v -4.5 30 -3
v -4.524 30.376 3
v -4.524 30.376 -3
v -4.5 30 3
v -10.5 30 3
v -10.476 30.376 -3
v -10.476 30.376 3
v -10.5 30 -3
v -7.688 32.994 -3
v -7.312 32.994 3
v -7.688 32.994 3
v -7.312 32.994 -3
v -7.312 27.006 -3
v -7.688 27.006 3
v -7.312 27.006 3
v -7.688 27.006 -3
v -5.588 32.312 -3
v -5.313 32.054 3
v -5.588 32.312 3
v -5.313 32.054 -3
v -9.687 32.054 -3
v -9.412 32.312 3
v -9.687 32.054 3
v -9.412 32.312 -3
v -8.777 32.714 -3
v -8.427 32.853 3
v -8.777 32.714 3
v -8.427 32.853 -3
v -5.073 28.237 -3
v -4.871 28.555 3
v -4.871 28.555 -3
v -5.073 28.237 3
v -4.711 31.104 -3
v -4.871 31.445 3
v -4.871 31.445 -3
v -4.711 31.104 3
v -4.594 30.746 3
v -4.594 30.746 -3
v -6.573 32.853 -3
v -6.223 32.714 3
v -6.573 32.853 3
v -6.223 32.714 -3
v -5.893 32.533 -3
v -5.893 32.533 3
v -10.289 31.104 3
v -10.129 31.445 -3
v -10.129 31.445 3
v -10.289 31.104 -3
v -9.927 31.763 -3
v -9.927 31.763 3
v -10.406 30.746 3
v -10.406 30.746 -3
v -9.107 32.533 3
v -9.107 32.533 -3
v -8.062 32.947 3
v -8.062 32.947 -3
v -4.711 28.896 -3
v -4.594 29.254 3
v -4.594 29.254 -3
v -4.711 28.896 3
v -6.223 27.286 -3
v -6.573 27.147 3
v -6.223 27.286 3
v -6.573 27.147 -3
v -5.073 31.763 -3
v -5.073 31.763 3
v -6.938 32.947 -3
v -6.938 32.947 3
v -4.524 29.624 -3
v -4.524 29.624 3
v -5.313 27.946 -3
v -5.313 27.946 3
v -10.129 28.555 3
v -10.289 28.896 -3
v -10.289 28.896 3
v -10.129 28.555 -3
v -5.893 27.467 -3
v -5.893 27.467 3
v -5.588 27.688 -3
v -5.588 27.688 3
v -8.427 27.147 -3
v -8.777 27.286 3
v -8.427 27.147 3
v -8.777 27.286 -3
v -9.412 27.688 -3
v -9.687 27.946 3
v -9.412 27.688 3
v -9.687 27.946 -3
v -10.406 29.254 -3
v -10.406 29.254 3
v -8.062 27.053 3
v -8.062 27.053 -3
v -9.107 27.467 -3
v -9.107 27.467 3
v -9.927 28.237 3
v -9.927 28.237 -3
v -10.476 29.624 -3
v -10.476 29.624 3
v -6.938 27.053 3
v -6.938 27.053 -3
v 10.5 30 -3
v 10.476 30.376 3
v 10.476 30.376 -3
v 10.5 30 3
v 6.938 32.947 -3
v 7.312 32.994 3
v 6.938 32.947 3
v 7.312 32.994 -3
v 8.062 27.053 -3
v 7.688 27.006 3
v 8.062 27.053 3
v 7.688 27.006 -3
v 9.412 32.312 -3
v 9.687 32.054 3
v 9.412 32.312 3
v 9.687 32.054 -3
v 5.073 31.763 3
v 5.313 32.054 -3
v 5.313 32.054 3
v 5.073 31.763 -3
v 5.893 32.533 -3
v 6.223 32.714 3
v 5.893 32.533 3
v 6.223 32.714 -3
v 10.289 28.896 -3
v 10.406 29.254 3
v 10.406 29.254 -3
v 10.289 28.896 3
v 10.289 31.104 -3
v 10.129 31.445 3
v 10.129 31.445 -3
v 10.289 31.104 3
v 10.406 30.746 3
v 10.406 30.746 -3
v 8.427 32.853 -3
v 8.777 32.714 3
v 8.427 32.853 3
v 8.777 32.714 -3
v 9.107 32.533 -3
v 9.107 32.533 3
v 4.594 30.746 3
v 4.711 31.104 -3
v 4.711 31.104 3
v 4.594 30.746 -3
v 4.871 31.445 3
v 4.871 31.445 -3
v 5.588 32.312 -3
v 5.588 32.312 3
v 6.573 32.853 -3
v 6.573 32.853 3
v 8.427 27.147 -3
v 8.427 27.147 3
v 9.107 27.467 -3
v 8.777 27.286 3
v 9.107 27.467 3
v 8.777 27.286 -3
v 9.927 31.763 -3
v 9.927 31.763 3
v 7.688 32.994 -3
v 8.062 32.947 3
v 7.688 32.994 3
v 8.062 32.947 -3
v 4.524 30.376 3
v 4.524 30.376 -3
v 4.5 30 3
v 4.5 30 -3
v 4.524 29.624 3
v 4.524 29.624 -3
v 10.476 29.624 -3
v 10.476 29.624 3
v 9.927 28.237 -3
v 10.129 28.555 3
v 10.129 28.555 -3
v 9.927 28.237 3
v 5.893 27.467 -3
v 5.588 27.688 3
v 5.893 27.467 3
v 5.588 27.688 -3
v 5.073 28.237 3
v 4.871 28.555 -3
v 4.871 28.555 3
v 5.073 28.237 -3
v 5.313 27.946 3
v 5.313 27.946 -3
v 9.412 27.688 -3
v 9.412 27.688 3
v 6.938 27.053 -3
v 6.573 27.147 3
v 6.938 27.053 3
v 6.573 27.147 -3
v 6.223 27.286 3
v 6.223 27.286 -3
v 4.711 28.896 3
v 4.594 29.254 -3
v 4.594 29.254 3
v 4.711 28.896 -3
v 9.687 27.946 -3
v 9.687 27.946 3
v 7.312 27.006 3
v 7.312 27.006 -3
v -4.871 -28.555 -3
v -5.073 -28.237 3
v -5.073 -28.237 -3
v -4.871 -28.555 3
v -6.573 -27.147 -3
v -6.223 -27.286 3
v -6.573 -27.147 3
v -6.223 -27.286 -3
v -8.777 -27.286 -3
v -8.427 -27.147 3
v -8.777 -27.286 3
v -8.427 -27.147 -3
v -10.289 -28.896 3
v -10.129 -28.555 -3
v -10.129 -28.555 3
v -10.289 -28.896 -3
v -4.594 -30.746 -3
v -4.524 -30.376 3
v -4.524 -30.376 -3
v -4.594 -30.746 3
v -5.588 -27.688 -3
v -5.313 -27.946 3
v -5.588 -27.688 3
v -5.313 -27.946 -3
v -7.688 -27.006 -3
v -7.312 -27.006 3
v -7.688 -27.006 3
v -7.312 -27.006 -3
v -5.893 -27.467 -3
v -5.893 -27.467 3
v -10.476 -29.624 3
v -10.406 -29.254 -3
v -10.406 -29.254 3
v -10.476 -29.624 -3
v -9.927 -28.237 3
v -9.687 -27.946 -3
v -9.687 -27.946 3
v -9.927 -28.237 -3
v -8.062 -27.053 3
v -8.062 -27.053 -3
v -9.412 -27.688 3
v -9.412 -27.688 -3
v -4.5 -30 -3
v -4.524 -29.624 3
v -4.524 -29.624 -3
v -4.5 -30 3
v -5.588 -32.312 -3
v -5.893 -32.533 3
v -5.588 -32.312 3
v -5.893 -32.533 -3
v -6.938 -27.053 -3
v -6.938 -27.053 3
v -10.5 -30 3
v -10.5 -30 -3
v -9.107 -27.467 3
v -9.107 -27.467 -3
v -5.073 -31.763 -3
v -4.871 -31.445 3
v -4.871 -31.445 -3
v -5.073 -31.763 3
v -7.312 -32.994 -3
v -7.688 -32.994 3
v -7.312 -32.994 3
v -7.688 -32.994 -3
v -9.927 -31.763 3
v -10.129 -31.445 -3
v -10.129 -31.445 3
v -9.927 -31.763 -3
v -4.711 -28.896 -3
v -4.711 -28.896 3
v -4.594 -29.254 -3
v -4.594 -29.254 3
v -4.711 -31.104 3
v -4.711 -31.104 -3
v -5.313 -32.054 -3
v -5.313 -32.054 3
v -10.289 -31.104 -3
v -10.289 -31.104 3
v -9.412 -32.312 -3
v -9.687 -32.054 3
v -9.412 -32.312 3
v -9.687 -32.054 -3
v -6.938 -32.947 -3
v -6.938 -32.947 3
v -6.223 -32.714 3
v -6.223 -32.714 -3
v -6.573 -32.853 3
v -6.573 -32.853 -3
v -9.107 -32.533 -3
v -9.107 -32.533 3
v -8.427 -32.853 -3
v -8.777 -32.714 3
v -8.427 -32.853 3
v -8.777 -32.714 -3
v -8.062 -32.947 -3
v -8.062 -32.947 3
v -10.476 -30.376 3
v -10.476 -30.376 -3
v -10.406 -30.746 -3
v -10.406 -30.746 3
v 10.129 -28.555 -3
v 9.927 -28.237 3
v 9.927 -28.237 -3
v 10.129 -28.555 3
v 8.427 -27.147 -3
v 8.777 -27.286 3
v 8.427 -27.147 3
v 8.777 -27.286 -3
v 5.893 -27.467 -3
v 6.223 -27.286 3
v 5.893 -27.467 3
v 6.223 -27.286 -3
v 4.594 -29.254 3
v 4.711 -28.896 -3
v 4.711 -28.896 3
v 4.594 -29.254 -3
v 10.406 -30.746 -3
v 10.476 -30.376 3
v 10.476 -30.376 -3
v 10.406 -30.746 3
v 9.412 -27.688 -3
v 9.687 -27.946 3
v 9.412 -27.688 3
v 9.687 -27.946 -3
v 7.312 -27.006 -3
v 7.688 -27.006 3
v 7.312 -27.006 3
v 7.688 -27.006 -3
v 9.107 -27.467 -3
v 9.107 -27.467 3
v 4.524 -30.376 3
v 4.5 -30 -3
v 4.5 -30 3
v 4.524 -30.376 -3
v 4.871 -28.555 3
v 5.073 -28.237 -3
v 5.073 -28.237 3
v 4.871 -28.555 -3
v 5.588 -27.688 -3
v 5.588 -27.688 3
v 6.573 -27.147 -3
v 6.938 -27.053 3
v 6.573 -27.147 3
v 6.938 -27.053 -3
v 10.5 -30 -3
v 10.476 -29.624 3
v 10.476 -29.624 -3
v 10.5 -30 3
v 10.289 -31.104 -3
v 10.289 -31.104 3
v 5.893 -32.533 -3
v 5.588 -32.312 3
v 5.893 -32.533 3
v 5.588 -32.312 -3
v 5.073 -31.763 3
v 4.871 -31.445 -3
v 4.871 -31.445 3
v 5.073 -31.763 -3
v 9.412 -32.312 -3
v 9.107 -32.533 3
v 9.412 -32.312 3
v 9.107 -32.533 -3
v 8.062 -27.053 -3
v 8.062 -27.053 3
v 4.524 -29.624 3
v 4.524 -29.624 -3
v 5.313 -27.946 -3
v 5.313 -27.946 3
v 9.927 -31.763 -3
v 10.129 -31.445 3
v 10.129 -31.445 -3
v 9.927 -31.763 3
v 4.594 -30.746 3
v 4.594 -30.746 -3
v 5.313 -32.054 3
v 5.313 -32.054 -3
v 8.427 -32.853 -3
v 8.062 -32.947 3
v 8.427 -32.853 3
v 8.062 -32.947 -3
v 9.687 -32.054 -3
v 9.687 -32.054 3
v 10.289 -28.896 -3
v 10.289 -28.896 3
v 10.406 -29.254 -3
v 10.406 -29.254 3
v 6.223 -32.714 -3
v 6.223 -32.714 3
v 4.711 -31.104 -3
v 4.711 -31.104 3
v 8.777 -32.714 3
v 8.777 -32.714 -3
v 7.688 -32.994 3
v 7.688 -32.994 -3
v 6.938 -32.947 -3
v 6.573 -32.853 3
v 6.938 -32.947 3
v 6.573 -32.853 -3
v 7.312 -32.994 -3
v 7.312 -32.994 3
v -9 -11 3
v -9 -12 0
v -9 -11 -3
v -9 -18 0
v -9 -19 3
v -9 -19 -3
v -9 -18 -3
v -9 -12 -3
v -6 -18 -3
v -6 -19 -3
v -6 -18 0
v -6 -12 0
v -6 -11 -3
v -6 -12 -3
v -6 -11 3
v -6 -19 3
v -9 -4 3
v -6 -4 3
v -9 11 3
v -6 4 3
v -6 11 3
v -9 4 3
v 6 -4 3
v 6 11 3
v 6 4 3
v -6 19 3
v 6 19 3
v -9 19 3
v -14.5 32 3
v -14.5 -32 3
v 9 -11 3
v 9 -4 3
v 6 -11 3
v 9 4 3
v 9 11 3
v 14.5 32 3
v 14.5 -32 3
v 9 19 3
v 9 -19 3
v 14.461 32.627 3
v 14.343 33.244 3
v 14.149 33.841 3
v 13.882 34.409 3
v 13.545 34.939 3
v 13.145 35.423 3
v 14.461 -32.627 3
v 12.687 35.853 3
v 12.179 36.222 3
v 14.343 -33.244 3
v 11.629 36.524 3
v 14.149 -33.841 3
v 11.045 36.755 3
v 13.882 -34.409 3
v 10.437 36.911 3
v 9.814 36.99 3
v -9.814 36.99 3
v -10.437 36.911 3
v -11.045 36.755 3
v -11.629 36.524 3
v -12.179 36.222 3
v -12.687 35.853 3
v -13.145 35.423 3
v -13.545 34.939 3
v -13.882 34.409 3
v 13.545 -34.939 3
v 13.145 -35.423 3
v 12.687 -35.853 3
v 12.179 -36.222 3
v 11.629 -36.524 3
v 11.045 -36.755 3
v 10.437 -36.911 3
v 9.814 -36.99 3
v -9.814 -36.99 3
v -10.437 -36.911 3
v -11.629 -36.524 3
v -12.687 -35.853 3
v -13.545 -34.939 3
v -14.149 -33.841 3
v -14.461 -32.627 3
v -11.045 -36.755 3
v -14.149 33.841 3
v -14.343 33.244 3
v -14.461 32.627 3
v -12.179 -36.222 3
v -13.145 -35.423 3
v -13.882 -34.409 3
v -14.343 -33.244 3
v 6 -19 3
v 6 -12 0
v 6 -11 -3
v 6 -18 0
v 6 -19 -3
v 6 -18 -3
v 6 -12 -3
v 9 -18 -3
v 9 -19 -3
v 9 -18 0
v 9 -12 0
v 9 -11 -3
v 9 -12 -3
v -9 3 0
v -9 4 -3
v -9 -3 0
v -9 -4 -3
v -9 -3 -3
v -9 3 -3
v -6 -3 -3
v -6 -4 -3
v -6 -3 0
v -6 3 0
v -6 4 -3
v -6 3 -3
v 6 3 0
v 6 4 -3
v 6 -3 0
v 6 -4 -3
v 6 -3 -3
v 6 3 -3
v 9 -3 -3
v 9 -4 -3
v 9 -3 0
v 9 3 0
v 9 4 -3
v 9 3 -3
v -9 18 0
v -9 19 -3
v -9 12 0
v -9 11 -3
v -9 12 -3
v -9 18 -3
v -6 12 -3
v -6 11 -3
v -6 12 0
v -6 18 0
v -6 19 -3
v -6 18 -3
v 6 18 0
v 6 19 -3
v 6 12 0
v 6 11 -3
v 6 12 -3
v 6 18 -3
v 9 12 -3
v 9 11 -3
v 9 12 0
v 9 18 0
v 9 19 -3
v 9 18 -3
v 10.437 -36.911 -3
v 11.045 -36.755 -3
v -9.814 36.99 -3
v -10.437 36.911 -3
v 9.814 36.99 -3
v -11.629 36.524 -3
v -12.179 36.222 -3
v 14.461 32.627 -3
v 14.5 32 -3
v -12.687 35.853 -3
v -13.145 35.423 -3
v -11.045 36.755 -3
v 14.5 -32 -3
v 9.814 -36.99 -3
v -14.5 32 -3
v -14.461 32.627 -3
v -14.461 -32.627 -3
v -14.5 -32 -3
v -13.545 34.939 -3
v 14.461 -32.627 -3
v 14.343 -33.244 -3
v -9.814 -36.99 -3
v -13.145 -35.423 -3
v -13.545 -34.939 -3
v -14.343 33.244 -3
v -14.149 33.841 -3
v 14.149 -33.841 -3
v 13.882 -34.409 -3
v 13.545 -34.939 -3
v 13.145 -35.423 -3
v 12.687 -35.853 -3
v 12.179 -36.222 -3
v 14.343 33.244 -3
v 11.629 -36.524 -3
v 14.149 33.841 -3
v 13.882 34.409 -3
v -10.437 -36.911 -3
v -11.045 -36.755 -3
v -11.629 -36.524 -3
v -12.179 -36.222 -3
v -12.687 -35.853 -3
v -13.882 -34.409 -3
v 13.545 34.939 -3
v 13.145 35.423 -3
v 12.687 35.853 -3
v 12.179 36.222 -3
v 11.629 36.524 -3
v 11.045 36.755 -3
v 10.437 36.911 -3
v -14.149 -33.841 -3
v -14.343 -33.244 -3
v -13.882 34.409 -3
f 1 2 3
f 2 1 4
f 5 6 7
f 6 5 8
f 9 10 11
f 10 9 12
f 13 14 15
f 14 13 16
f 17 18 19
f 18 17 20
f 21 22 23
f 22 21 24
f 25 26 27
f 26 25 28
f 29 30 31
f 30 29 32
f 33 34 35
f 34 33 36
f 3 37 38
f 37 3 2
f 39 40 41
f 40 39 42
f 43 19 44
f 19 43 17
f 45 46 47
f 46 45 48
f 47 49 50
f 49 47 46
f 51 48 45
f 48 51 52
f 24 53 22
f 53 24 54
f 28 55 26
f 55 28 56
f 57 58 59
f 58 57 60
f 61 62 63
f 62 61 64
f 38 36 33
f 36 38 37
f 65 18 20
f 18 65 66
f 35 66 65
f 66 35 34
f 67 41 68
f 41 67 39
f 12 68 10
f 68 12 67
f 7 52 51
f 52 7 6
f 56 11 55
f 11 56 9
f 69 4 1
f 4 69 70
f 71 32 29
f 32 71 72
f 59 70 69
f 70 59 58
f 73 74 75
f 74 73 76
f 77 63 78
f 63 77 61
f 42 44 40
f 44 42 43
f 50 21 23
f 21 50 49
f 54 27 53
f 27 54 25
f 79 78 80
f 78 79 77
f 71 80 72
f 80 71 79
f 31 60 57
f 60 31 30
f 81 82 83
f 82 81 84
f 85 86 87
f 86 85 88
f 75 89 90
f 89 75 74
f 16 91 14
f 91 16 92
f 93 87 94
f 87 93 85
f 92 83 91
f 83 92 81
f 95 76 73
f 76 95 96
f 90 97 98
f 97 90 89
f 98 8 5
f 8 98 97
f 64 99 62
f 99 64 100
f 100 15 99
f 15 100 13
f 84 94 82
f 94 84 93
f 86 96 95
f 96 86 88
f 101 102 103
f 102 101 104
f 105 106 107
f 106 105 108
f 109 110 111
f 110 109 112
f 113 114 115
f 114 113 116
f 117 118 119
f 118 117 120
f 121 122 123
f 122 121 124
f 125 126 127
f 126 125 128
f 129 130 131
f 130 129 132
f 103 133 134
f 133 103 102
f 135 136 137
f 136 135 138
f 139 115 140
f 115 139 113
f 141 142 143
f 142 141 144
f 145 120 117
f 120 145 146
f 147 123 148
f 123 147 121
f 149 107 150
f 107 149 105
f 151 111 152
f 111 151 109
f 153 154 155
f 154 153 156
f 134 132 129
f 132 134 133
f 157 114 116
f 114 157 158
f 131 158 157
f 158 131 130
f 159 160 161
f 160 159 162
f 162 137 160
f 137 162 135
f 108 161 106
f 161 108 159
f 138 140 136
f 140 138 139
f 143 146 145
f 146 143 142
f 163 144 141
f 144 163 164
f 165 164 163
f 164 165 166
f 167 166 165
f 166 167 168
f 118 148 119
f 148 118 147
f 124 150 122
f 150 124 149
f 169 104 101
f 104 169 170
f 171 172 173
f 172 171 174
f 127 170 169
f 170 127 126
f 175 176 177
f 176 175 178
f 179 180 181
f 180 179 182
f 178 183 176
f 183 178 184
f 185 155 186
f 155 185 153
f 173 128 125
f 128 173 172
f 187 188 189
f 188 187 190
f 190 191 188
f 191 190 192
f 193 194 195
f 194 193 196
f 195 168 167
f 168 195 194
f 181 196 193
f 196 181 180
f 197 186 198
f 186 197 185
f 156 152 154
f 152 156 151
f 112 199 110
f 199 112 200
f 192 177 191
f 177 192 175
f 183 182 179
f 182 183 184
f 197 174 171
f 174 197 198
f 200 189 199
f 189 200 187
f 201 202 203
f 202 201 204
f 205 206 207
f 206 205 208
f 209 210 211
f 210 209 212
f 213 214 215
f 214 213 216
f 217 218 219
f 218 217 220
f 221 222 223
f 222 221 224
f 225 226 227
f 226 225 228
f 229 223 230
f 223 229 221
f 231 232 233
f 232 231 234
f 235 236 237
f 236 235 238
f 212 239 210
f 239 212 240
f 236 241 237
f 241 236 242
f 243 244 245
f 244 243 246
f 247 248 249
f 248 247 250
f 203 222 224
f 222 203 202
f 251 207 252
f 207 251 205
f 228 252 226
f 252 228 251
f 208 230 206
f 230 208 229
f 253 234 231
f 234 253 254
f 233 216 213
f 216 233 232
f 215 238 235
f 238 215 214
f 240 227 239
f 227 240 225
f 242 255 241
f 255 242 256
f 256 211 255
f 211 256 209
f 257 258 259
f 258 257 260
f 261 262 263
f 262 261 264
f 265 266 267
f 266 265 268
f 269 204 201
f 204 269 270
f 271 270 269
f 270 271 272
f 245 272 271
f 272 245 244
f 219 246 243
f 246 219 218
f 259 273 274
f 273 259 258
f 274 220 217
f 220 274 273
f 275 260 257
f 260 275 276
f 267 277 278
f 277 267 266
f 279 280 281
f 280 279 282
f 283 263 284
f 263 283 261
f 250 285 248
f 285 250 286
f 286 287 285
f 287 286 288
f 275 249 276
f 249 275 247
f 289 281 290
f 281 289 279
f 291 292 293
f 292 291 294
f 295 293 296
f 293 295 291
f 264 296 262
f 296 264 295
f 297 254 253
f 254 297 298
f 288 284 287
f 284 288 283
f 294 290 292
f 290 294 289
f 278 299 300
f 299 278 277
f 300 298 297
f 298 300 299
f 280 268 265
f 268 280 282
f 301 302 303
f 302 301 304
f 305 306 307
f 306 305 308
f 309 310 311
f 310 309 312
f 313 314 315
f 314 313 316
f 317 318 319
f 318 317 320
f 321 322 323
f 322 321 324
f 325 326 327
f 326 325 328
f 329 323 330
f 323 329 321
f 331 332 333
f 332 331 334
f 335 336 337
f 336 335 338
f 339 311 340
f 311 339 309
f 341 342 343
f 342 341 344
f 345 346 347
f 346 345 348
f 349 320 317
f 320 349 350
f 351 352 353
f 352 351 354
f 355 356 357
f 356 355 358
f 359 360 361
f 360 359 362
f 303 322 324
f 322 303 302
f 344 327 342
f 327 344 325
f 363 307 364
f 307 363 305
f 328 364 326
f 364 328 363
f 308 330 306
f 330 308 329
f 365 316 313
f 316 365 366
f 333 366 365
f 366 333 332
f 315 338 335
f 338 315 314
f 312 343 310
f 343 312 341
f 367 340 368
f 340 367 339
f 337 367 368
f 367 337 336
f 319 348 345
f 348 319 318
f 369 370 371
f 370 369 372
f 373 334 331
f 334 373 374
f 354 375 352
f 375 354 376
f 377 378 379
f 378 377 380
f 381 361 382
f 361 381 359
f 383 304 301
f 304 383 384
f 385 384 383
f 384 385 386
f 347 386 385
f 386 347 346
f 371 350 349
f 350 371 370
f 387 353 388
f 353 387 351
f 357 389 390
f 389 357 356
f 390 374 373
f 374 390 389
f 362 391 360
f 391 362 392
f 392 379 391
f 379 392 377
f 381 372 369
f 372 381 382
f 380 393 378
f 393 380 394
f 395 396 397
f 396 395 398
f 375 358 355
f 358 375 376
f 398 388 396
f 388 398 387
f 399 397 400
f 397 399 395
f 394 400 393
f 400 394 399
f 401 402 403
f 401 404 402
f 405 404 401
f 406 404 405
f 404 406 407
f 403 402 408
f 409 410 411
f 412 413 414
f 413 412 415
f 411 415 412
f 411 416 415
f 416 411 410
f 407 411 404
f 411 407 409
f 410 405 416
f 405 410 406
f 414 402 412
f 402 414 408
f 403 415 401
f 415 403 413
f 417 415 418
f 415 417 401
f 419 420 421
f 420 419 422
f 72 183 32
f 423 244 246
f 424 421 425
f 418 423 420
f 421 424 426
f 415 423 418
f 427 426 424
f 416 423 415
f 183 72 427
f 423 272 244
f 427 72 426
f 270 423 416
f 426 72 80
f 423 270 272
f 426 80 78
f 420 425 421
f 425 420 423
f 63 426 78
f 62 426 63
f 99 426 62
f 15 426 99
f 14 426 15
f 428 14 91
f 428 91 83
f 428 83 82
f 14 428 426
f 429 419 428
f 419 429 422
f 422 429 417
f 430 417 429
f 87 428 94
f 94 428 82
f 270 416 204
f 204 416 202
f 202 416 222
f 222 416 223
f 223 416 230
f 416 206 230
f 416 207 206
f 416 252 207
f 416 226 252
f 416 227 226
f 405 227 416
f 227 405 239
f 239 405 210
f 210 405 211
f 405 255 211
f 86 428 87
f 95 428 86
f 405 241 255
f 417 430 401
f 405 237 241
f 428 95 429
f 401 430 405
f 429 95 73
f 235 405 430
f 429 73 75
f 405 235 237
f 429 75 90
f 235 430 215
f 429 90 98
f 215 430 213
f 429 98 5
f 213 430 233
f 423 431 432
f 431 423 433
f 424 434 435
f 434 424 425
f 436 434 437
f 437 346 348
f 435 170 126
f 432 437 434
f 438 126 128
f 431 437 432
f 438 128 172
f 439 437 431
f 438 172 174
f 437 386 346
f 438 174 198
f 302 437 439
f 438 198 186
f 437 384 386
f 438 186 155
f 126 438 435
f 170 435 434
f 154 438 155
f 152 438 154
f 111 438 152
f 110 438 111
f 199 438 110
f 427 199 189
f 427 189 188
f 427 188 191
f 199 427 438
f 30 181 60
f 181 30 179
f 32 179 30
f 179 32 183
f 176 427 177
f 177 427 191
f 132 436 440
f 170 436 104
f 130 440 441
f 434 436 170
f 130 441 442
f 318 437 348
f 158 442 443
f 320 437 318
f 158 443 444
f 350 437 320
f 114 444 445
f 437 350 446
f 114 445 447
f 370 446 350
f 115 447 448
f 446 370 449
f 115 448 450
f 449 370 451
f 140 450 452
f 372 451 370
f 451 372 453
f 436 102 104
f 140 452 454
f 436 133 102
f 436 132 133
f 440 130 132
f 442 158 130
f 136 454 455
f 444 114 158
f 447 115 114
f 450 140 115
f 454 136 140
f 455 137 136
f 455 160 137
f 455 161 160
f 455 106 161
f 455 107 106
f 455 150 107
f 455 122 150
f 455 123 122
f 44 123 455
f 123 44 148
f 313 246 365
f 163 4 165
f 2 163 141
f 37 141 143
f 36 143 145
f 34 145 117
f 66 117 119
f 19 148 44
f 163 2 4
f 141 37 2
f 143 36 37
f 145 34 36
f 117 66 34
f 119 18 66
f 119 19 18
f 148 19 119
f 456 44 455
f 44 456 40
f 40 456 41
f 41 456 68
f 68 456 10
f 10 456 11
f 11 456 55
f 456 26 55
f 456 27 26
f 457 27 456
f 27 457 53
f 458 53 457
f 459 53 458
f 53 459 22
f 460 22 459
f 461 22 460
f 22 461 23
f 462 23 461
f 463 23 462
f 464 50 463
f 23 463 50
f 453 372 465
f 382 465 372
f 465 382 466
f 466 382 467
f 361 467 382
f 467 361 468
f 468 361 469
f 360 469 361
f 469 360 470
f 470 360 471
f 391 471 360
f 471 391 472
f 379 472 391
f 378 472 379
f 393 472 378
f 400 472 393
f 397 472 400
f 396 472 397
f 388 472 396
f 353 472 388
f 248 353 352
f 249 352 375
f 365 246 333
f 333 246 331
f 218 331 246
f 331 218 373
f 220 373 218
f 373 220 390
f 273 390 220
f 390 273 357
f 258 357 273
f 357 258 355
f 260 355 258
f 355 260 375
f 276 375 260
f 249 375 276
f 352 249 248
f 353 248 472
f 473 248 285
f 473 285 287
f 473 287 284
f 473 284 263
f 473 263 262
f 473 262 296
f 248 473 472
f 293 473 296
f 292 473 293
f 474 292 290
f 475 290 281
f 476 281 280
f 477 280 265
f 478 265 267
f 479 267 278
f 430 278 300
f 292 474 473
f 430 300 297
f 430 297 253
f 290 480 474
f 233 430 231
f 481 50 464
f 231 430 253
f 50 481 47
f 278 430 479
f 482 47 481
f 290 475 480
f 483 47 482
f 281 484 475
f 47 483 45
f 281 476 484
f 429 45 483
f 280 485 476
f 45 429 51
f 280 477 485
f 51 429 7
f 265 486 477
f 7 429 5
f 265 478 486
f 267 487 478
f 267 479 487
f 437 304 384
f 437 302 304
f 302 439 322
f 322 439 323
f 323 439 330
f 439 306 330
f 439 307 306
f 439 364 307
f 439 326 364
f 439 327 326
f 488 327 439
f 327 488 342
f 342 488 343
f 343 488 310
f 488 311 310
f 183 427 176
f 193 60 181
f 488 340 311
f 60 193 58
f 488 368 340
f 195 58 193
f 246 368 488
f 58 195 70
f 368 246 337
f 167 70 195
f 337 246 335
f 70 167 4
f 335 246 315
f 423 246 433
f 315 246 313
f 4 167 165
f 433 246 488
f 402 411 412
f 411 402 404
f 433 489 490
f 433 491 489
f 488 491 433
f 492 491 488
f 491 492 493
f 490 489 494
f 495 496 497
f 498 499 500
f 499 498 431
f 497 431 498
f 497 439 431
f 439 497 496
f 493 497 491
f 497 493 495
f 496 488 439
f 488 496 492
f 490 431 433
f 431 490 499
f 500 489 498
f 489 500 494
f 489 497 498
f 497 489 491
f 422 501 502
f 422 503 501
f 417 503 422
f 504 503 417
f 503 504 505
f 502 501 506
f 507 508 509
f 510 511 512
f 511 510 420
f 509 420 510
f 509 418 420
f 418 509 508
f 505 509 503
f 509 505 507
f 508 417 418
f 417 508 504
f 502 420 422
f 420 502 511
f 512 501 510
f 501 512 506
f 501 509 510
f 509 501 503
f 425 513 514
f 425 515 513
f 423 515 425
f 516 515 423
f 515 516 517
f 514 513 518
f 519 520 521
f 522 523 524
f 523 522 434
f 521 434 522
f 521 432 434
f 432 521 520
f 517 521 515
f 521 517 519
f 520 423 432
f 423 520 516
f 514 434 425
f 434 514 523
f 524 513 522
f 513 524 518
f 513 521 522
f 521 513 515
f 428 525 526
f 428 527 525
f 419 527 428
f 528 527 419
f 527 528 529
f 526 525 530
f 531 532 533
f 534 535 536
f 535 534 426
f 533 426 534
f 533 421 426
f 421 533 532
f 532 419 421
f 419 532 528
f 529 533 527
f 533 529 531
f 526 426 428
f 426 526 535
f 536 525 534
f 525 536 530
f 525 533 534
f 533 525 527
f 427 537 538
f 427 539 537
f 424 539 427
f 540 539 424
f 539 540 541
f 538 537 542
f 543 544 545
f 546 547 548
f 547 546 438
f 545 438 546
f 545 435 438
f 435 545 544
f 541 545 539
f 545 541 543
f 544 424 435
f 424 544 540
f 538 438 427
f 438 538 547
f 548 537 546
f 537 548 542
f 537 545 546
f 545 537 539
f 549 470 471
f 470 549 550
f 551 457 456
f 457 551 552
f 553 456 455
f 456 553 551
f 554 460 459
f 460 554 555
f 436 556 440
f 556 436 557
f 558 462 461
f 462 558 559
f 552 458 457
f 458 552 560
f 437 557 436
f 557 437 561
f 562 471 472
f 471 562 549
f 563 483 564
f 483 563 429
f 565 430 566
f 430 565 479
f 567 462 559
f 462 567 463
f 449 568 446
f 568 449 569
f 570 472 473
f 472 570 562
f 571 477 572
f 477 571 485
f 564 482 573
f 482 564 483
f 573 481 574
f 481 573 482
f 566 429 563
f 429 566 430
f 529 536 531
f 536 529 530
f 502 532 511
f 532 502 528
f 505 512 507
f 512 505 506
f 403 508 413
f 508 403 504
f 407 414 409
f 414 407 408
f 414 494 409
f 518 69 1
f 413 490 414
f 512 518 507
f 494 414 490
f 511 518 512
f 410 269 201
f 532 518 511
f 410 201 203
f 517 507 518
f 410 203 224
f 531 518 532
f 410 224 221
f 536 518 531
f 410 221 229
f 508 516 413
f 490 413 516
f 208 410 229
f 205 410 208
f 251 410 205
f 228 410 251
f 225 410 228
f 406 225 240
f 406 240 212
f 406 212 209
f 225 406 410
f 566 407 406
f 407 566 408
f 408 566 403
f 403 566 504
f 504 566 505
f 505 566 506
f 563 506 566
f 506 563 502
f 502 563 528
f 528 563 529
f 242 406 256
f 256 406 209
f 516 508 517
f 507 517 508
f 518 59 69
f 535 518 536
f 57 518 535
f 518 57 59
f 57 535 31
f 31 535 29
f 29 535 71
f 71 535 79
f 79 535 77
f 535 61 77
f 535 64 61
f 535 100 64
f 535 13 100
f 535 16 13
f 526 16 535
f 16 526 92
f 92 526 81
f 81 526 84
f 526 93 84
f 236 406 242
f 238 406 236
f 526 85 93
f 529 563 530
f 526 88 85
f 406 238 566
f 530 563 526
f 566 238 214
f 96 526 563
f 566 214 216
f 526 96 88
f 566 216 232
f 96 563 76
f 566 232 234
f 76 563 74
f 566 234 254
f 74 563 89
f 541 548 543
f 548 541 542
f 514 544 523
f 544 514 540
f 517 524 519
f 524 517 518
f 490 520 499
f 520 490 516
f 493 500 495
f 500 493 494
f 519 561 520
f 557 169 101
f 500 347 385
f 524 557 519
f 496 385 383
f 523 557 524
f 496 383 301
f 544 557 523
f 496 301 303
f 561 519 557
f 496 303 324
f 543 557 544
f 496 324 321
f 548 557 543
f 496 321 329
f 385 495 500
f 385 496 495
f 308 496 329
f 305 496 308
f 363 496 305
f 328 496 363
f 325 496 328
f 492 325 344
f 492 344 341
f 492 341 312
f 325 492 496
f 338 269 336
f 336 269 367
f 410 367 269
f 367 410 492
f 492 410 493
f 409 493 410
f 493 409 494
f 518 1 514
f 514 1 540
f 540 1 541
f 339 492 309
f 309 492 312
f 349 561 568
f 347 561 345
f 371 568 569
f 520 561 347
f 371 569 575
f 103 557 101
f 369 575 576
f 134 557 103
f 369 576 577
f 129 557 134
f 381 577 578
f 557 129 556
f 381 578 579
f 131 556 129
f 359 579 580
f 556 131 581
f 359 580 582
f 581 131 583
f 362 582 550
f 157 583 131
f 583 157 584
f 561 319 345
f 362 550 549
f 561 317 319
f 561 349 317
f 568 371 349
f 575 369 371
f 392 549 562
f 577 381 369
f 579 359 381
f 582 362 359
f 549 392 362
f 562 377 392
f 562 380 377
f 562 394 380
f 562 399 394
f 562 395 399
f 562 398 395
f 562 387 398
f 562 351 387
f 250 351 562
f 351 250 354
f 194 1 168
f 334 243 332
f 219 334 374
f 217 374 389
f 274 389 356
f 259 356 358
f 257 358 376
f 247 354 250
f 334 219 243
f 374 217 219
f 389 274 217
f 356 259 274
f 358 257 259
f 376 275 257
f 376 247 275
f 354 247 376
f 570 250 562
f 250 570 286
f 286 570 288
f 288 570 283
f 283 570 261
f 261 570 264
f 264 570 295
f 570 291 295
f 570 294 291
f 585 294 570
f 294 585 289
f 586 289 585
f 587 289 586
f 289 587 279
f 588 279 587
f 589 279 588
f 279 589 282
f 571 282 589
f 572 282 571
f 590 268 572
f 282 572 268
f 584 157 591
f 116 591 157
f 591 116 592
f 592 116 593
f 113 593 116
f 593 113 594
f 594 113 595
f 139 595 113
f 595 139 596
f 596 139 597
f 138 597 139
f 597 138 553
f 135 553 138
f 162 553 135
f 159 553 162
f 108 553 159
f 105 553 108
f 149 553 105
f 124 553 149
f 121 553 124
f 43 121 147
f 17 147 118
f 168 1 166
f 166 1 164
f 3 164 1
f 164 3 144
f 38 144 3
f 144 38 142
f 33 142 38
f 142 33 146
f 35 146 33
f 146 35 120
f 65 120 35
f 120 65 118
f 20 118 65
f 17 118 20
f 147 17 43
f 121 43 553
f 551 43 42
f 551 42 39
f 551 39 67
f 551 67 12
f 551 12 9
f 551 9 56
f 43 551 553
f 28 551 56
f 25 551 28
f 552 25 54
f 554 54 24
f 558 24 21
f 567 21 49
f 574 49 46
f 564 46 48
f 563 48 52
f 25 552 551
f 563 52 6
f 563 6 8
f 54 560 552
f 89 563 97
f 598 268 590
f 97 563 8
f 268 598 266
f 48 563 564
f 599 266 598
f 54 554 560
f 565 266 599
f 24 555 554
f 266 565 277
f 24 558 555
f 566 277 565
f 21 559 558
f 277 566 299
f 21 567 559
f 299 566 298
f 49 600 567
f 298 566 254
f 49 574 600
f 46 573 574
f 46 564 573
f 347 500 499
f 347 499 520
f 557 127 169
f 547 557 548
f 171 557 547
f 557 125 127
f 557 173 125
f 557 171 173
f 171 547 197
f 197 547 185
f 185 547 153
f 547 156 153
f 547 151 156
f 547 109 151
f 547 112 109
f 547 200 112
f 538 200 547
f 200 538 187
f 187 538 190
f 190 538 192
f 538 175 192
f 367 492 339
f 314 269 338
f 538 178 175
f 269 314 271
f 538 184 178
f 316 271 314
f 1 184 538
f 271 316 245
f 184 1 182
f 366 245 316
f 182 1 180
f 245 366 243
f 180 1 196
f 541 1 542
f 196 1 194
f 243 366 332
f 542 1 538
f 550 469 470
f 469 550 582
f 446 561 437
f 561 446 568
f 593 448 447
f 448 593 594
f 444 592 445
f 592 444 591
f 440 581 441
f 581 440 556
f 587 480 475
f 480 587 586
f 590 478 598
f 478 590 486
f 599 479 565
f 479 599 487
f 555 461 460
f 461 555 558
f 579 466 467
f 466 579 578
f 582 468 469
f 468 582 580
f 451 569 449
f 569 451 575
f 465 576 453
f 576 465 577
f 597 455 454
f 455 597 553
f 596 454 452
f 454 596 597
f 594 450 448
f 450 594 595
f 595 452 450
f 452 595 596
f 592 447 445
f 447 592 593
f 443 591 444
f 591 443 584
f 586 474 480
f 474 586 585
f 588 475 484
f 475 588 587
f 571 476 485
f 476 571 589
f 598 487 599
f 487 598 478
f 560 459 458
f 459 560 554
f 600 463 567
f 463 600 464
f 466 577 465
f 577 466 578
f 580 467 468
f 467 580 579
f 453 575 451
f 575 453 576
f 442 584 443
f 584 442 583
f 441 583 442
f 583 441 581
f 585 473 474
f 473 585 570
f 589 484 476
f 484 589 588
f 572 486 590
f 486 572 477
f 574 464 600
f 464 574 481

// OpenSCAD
$fn = 50;


difference() {
	union() {
		translate(v = [0, 0, -3.0000000000]) {
			rotate(a = [0, 0, 0]) {
				hull() {
					translate(v = [-9.5000000000, 32.0000000000, 0]) {
						rotate(a = [0, 0, 0]) {
							translate(v = [0, 0, 0]) {
								rotate(a = [0, 0, 0]) {
									cylinder(h = 6, r = 5);
								}
							}
						}
					}
					translate(v = [9.5000000000, 32.0000000000, 0]) {
						rotate(a = [0, 0, 0]) {
							translate(v = [0, 0, 0]) {
								rotate(a = [0, 0, 0]) {
									cylinder(h = 6, r = 5);
								}
							}
						}
					}
					translate(v = [-9.5000000000, -32.0000000000, 0]) {
						rotate(a = [0, 0, 0]) {
							translate(v = [0, 0, 0]) {
								rotate(a = [0, 0, 0]) {
									cylinder(h = 6, r = 5);
								}
							}
						}
					}
					translate(v = [9.5000000000, -32.0000000000, 0]) {
						rotate(a = [0, 0, 0]) {
							translate(v = [0, 0, 0]) {
								rotate(a = [0, 0, 0]) {
									cylinder(h = 6, r = 5);
								}
							}
						}
					}
				}
			}
		}
	}
	union() {
		translate(v = [-7.5000000000, 30.0000000000, -125.0000000000]) {
			rotate(a = [0, 0, 0]) {
				cylinder(h = 250, r = 3.0000000000);
			}
		}
		translate(v = [7.5000000000, 30.0000000000, -125.0000000000]) {
			rotate(a = [0, 0, 0]) {
				cylinder(h = 250, r = 3.0000000000);
			}
		}
		translate(v = [-7.5000000000, -30.0000000000, -125.0000000000]) {
			rotate(a = [0, 0, 0]) {
				cylinder(h = 250, r = 3.0000000000);
			}
		}
		translate(v = [7.5000000000, -30.0000000000, -125.0000000000]) {
			rotate(a = [0, 0, 0]) {
				cylinder(h = 250, r = 3.0000000000);
			}
		}
		translate(v = [-9.0000000000, -19.0000000000, -50]) {
			rotate(a = [0, 0, 0]) {
				cube(size = [3, 1, 100]);
			}
		}
		translate(v = [-9.0000000000, -12.0000000000, -50]) {
			rotate(a = [0, 0, 0]) {
				cube(size = [3, 1, 100]);
			}
		}
		translate(v = [-9.0000000000, -19.0000000000, 0]) {
			rotate(a = [0, 0, 0]) {
				cube(size = [3, 8, 3]);
			}
		}
		translate(v = [6.0000000000, -19.0000000000, -50]) {
			rotate(a = [0, 0, 0]) {
				cube(size = [3, 1, 100]);
			}
		}
		translate(v = [6.0000000000, -12.0000000000, -50]) {
			rotate(a = [0, 0, 0]) {
				cube(size = [3, 1, 100]);
			}
		}
		translate(v = [6.0000000000, -19.0000000000, 0]) {
			rotate(a = [0, 0, 0]) {
				cube(size = [3, 8, 3]);
			}
		}
		translate(v = [-9.0000000000, -4.0000000000, -50]) {
			rotate(a = [0, 0, 0]) {
				cube(size = [3, 1, 100]);
			}
		}
		translate(v = [-9.0000000000, 3.0000000000, -50]) {
			rotate(a = [0, 0, 0]) {
				cube(size = [3, 1, 100]);
			}
		}
		translate(v = [-9.0000000000, -4.0000000000, 0]) {
			rotate(a = [0, 0, 0]) {
				cube(size = [3, 8, 3]);
			}
		}
		translate(v = [6.0000000000, -4.0000000000, -50]) {
			rotate(a = [0, 0, 0]) {
				cube(size = [3, 1, 100]);
			}
		}
		translate(v = [6.0000000000, 3.0000000000, -50]) {
			rotate(a = [0, 0, 0]) {
				cube(size = [3, 1, 100]);
			}
		}
		translate(v = [6.0000000000, -4.0000000000, 0]) {
			rotate(a = [0, 0, 0]) {
				cube(size = [3, 8, 3]);
			}
		}
		translate(v = [-9.0000000000, 11.0000000000, -50]) {
			rotate(a = [0, 0, 0]) {
				cube(size = [3, 1, 100]);
			}
		}
		translate(v = [-9.0000000000, 18.0000000000, -50]) {
			rotate(a = [0, 0, 0]) {
				cube(size = [3, 1, 100]);
			}
		}
		translate(v = [-9.0000000000, 11.0000000000, 0]) {
			rotate(a = [0, 0, 0]) {
				cube(size = [3, 8, 3]);
			}
		}
		translate(v = [6.0000000000, 11.0000000000, -50]) {
			rotate(a = [0, 0, 0]) {
				cube(size = [3, 1, 100]);
			}
		}
		translate(v = [6.0000000000, 18.0000000000, -50]) {
			rotate(a = [0, 0, 0]) {
				cube(size = [3, 1, 100]);
			}
		}
		translate(v = [6.0000000000, 11.0000000000, 0]) {
			rotate(a = [0, 0, 0]) {
				cube(size = [3, 8, 3]);
			}
		}
	}
}
